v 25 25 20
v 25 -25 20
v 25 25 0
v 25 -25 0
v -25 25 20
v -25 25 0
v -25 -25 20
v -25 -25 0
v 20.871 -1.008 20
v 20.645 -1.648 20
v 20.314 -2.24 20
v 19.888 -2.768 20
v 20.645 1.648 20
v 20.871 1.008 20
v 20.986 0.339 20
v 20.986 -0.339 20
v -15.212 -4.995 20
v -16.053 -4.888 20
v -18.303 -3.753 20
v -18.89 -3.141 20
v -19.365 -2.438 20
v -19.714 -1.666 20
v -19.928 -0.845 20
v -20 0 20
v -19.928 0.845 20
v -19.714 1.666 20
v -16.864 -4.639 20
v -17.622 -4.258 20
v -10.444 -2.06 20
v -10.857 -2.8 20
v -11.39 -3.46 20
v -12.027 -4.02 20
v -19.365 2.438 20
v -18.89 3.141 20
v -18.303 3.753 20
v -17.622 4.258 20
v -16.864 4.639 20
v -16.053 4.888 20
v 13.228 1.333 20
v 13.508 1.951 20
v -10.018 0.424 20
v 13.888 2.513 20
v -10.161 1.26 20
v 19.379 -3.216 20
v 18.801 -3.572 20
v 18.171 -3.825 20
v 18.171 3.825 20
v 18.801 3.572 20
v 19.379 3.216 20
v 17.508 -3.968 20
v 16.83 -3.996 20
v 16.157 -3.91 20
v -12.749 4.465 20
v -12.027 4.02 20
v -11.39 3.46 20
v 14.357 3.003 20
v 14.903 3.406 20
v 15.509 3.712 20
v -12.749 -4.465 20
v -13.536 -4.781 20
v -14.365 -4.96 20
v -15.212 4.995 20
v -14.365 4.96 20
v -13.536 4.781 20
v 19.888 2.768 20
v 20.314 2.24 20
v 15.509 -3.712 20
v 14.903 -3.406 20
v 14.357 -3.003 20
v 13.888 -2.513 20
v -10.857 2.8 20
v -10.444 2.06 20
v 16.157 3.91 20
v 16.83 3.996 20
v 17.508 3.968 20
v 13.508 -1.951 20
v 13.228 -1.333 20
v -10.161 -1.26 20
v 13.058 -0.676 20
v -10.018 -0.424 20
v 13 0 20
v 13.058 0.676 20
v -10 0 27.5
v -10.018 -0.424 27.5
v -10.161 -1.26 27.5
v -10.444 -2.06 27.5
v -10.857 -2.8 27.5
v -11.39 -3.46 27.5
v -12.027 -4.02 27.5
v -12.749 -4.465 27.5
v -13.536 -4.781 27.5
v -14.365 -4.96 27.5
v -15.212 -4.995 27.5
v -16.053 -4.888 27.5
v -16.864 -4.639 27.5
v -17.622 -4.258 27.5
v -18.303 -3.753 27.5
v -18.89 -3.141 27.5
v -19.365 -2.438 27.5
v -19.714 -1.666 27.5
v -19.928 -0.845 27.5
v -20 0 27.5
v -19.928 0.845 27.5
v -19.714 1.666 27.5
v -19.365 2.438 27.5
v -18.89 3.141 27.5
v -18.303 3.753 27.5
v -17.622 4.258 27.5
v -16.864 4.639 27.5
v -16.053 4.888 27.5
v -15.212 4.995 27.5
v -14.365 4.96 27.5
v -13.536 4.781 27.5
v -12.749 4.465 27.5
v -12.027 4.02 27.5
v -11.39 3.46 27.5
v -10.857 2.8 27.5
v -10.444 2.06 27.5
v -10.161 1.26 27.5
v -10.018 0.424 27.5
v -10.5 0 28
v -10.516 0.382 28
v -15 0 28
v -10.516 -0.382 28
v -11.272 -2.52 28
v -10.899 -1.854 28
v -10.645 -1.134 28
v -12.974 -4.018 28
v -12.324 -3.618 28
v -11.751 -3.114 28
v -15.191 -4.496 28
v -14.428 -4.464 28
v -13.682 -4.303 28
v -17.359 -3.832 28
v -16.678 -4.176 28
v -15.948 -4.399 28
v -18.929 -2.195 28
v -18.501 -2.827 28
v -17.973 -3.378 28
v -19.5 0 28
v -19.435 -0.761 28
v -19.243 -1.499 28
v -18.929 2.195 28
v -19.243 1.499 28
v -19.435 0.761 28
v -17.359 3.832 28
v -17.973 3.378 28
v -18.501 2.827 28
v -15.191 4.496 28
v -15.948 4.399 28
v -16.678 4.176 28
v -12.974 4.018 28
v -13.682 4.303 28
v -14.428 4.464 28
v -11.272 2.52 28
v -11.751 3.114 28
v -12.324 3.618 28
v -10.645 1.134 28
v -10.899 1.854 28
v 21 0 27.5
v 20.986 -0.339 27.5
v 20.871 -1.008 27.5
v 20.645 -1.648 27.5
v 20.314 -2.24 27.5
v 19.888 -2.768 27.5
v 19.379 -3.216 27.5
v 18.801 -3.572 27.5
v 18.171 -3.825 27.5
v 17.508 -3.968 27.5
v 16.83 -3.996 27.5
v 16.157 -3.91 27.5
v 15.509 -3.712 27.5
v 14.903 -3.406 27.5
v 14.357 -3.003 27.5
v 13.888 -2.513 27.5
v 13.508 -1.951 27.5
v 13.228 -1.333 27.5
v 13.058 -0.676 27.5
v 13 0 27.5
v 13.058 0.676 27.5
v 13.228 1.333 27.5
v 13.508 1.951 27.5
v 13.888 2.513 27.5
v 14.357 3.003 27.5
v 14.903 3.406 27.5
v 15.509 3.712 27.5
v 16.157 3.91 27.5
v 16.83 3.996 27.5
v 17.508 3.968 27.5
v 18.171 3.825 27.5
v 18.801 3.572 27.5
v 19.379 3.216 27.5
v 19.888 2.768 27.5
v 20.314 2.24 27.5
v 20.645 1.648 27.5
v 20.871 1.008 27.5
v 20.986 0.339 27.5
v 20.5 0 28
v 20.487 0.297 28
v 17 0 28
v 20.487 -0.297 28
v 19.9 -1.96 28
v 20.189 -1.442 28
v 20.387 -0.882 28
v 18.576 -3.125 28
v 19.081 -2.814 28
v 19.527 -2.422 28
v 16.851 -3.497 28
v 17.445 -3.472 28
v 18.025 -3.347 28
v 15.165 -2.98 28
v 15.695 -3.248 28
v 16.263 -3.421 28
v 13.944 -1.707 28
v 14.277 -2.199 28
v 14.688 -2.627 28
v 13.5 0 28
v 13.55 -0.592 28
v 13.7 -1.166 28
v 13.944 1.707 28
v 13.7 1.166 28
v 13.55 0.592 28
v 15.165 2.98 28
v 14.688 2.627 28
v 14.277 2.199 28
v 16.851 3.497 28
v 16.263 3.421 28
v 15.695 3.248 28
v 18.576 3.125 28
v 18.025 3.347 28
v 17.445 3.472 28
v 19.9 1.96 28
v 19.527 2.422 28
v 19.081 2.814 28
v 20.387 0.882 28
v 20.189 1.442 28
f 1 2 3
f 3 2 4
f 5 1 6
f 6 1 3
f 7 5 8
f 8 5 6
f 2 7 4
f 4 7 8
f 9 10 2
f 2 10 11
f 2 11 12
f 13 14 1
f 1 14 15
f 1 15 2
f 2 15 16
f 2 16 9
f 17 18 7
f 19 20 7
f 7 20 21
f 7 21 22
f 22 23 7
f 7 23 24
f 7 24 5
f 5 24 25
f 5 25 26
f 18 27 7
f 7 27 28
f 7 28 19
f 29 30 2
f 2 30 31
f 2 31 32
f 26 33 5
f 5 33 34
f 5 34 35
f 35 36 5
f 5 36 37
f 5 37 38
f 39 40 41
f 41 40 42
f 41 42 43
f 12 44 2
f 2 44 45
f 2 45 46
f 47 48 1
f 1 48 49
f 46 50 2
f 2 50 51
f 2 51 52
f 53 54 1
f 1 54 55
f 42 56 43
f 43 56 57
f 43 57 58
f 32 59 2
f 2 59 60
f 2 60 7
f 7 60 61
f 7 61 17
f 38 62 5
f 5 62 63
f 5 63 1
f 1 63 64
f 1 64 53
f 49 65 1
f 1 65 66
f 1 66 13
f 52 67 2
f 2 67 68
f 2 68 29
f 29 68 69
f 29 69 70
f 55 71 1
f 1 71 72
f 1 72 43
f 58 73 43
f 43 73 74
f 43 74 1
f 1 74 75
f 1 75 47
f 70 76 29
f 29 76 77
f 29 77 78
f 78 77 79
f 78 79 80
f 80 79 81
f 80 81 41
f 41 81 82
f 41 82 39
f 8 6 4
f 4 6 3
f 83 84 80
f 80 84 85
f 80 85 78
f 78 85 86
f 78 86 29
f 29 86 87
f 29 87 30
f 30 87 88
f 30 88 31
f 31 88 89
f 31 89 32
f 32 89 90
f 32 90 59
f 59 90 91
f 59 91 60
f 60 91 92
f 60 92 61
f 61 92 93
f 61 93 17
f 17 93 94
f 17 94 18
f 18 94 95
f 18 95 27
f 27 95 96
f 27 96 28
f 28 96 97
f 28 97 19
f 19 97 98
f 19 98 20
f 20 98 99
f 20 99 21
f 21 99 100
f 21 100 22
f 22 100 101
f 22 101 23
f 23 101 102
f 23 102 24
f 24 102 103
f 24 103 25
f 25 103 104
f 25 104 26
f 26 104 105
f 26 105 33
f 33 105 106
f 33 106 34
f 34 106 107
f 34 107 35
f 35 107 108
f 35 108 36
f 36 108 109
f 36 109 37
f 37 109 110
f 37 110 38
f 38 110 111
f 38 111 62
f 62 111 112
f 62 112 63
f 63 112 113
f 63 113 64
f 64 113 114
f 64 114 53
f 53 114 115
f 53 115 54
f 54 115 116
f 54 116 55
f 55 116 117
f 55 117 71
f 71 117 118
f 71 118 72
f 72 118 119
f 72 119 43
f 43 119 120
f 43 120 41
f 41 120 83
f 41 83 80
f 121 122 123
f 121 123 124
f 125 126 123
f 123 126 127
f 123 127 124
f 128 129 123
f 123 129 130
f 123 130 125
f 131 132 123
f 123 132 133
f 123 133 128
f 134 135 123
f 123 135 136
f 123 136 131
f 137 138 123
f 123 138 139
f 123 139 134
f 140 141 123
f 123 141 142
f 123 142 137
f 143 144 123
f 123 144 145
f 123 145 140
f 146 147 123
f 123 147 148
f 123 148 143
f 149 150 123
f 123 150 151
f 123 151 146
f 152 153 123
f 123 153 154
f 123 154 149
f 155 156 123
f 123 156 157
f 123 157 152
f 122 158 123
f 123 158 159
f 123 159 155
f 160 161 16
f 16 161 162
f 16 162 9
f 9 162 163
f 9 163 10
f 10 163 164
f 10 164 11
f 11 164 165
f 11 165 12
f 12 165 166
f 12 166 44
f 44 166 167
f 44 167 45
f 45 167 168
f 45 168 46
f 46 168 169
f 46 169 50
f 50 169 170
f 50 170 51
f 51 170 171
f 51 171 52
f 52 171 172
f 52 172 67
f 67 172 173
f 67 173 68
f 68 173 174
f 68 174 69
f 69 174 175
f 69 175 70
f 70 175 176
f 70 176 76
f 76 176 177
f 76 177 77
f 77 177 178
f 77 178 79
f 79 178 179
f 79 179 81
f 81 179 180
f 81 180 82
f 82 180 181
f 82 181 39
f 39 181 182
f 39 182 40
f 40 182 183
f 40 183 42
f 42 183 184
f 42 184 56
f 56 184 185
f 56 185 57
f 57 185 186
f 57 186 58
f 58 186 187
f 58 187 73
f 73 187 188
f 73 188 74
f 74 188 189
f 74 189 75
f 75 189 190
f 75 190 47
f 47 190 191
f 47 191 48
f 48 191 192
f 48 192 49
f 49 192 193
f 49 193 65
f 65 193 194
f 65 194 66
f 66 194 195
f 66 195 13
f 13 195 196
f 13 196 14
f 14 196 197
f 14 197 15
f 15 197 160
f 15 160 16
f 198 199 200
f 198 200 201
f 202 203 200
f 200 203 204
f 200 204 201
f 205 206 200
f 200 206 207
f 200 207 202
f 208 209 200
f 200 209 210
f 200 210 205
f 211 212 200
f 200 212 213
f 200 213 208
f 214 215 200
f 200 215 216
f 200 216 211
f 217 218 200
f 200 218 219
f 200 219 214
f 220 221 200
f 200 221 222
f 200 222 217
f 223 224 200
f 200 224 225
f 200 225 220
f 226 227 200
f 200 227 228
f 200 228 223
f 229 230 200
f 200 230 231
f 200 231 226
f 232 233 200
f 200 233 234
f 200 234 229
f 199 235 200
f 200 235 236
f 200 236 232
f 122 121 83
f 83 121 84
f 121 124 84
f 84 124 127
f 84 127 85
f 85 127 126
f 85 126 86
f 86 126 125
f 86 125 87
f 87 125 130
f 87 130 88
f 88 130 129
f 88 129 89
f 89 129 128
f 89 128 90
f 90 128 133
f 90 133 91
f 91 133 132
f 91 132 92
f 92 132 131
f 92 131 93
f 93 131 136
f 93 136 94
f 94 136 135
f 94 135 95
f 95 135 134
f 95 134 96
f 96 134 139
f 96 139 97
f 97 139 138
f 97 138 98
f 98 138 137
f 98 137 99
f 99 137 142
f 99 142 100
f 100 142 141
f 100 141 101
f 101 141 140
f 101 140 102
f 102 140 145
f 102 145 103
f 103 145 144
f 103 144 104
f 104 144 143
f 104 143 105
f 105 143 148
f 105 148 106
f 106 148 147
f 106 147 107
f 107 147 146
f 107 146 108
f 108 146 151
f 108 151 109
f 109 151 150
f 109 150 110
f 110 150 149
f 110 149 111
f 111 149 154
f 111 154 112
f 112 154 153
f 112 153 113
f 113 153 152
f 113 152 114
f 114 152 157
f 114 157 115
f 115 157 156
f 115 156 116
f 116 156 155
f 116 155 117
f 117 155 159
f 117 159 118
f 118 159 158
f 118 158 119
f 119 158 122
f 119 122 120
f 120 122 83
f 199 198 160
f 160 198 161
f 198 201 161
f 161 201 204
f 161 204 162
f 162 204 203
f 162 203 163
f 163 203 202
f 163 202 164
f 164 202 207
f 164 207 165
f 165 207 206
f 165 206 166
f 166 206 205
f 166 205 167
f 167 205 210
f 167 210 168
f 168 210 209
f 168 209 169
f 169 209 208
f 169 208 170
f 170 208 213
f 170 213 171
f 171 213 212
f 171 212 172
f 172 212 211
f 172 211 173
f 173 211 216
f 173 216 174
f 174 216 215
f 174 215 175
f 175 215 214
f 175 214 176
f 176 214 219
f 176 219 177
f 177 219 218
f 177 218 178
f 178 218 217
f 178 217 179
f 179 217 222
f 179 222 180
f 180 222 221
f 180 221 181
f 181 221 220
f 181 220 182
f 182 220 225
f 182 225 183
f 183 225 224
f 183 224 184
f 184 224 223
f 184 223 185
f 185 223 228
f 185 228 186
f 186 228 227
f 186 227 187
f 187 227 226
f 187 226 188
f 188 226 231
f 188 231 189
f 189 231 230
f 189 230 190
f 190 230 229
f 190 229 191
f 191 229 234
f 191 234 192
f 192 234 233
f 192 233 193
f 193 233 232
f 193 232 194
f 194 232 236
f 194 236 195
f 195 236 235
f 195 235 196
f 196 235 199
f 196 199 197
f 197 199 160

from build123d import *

# Parameters (mm, degrees)
SKETCH_3_W      = 50
SKETCH_3_H      = 50
EXTRUDE_3_DEPTH = 20
SKETCH_4_R      = 5
SKETCH_4_R_2    = 4
EXTRUDE_4_DEPTH = 8
CHAMFER_2_SIZE  = 0.5
CHAMFER_3_SIZE  = 0.5


with BuildPart() as part:
    # 草图3 → 凸台-拉伸3 (new body)
    with BuildSketch(Plane.XY):
        Rectangle(SKETCH_3_W, SKETCH_3_H)
    extrude(amount=EXTRUDE_3_DEPTH)

    # 草图4 → 凸台-拉伸4 (add)
    with BuildSketch(Plane.XY.offset(20)):
        with Locations(Location((-15, 0, 0), (0, 0, 180))):
            Circle(SKETCH_4_R)
        with Locations(Location((17, 0, 0), (0, 0, 180))):
            Circle(SKETCH_4_R_2)
    extrude(amount=EXTRUDE_4_DEPTH)

    # 倒角2
    chamfer_2_edges = [part.edges().sort_by_distance(p)[0] for p in [
        (-10, 0, 28),
    ]]
    chamfer(chamfer_2_edges, length=CHAMFER_2_SIZE)

    # 倒角3
    chamfer_3_edges = [part.edges().sort_by_distance(p)[0] for p in [
        (21, 0, 28),
    ]]
    chamfer(chamfer_3_edges, length=CHAMFER_3_SIZE)


solid = part.part
